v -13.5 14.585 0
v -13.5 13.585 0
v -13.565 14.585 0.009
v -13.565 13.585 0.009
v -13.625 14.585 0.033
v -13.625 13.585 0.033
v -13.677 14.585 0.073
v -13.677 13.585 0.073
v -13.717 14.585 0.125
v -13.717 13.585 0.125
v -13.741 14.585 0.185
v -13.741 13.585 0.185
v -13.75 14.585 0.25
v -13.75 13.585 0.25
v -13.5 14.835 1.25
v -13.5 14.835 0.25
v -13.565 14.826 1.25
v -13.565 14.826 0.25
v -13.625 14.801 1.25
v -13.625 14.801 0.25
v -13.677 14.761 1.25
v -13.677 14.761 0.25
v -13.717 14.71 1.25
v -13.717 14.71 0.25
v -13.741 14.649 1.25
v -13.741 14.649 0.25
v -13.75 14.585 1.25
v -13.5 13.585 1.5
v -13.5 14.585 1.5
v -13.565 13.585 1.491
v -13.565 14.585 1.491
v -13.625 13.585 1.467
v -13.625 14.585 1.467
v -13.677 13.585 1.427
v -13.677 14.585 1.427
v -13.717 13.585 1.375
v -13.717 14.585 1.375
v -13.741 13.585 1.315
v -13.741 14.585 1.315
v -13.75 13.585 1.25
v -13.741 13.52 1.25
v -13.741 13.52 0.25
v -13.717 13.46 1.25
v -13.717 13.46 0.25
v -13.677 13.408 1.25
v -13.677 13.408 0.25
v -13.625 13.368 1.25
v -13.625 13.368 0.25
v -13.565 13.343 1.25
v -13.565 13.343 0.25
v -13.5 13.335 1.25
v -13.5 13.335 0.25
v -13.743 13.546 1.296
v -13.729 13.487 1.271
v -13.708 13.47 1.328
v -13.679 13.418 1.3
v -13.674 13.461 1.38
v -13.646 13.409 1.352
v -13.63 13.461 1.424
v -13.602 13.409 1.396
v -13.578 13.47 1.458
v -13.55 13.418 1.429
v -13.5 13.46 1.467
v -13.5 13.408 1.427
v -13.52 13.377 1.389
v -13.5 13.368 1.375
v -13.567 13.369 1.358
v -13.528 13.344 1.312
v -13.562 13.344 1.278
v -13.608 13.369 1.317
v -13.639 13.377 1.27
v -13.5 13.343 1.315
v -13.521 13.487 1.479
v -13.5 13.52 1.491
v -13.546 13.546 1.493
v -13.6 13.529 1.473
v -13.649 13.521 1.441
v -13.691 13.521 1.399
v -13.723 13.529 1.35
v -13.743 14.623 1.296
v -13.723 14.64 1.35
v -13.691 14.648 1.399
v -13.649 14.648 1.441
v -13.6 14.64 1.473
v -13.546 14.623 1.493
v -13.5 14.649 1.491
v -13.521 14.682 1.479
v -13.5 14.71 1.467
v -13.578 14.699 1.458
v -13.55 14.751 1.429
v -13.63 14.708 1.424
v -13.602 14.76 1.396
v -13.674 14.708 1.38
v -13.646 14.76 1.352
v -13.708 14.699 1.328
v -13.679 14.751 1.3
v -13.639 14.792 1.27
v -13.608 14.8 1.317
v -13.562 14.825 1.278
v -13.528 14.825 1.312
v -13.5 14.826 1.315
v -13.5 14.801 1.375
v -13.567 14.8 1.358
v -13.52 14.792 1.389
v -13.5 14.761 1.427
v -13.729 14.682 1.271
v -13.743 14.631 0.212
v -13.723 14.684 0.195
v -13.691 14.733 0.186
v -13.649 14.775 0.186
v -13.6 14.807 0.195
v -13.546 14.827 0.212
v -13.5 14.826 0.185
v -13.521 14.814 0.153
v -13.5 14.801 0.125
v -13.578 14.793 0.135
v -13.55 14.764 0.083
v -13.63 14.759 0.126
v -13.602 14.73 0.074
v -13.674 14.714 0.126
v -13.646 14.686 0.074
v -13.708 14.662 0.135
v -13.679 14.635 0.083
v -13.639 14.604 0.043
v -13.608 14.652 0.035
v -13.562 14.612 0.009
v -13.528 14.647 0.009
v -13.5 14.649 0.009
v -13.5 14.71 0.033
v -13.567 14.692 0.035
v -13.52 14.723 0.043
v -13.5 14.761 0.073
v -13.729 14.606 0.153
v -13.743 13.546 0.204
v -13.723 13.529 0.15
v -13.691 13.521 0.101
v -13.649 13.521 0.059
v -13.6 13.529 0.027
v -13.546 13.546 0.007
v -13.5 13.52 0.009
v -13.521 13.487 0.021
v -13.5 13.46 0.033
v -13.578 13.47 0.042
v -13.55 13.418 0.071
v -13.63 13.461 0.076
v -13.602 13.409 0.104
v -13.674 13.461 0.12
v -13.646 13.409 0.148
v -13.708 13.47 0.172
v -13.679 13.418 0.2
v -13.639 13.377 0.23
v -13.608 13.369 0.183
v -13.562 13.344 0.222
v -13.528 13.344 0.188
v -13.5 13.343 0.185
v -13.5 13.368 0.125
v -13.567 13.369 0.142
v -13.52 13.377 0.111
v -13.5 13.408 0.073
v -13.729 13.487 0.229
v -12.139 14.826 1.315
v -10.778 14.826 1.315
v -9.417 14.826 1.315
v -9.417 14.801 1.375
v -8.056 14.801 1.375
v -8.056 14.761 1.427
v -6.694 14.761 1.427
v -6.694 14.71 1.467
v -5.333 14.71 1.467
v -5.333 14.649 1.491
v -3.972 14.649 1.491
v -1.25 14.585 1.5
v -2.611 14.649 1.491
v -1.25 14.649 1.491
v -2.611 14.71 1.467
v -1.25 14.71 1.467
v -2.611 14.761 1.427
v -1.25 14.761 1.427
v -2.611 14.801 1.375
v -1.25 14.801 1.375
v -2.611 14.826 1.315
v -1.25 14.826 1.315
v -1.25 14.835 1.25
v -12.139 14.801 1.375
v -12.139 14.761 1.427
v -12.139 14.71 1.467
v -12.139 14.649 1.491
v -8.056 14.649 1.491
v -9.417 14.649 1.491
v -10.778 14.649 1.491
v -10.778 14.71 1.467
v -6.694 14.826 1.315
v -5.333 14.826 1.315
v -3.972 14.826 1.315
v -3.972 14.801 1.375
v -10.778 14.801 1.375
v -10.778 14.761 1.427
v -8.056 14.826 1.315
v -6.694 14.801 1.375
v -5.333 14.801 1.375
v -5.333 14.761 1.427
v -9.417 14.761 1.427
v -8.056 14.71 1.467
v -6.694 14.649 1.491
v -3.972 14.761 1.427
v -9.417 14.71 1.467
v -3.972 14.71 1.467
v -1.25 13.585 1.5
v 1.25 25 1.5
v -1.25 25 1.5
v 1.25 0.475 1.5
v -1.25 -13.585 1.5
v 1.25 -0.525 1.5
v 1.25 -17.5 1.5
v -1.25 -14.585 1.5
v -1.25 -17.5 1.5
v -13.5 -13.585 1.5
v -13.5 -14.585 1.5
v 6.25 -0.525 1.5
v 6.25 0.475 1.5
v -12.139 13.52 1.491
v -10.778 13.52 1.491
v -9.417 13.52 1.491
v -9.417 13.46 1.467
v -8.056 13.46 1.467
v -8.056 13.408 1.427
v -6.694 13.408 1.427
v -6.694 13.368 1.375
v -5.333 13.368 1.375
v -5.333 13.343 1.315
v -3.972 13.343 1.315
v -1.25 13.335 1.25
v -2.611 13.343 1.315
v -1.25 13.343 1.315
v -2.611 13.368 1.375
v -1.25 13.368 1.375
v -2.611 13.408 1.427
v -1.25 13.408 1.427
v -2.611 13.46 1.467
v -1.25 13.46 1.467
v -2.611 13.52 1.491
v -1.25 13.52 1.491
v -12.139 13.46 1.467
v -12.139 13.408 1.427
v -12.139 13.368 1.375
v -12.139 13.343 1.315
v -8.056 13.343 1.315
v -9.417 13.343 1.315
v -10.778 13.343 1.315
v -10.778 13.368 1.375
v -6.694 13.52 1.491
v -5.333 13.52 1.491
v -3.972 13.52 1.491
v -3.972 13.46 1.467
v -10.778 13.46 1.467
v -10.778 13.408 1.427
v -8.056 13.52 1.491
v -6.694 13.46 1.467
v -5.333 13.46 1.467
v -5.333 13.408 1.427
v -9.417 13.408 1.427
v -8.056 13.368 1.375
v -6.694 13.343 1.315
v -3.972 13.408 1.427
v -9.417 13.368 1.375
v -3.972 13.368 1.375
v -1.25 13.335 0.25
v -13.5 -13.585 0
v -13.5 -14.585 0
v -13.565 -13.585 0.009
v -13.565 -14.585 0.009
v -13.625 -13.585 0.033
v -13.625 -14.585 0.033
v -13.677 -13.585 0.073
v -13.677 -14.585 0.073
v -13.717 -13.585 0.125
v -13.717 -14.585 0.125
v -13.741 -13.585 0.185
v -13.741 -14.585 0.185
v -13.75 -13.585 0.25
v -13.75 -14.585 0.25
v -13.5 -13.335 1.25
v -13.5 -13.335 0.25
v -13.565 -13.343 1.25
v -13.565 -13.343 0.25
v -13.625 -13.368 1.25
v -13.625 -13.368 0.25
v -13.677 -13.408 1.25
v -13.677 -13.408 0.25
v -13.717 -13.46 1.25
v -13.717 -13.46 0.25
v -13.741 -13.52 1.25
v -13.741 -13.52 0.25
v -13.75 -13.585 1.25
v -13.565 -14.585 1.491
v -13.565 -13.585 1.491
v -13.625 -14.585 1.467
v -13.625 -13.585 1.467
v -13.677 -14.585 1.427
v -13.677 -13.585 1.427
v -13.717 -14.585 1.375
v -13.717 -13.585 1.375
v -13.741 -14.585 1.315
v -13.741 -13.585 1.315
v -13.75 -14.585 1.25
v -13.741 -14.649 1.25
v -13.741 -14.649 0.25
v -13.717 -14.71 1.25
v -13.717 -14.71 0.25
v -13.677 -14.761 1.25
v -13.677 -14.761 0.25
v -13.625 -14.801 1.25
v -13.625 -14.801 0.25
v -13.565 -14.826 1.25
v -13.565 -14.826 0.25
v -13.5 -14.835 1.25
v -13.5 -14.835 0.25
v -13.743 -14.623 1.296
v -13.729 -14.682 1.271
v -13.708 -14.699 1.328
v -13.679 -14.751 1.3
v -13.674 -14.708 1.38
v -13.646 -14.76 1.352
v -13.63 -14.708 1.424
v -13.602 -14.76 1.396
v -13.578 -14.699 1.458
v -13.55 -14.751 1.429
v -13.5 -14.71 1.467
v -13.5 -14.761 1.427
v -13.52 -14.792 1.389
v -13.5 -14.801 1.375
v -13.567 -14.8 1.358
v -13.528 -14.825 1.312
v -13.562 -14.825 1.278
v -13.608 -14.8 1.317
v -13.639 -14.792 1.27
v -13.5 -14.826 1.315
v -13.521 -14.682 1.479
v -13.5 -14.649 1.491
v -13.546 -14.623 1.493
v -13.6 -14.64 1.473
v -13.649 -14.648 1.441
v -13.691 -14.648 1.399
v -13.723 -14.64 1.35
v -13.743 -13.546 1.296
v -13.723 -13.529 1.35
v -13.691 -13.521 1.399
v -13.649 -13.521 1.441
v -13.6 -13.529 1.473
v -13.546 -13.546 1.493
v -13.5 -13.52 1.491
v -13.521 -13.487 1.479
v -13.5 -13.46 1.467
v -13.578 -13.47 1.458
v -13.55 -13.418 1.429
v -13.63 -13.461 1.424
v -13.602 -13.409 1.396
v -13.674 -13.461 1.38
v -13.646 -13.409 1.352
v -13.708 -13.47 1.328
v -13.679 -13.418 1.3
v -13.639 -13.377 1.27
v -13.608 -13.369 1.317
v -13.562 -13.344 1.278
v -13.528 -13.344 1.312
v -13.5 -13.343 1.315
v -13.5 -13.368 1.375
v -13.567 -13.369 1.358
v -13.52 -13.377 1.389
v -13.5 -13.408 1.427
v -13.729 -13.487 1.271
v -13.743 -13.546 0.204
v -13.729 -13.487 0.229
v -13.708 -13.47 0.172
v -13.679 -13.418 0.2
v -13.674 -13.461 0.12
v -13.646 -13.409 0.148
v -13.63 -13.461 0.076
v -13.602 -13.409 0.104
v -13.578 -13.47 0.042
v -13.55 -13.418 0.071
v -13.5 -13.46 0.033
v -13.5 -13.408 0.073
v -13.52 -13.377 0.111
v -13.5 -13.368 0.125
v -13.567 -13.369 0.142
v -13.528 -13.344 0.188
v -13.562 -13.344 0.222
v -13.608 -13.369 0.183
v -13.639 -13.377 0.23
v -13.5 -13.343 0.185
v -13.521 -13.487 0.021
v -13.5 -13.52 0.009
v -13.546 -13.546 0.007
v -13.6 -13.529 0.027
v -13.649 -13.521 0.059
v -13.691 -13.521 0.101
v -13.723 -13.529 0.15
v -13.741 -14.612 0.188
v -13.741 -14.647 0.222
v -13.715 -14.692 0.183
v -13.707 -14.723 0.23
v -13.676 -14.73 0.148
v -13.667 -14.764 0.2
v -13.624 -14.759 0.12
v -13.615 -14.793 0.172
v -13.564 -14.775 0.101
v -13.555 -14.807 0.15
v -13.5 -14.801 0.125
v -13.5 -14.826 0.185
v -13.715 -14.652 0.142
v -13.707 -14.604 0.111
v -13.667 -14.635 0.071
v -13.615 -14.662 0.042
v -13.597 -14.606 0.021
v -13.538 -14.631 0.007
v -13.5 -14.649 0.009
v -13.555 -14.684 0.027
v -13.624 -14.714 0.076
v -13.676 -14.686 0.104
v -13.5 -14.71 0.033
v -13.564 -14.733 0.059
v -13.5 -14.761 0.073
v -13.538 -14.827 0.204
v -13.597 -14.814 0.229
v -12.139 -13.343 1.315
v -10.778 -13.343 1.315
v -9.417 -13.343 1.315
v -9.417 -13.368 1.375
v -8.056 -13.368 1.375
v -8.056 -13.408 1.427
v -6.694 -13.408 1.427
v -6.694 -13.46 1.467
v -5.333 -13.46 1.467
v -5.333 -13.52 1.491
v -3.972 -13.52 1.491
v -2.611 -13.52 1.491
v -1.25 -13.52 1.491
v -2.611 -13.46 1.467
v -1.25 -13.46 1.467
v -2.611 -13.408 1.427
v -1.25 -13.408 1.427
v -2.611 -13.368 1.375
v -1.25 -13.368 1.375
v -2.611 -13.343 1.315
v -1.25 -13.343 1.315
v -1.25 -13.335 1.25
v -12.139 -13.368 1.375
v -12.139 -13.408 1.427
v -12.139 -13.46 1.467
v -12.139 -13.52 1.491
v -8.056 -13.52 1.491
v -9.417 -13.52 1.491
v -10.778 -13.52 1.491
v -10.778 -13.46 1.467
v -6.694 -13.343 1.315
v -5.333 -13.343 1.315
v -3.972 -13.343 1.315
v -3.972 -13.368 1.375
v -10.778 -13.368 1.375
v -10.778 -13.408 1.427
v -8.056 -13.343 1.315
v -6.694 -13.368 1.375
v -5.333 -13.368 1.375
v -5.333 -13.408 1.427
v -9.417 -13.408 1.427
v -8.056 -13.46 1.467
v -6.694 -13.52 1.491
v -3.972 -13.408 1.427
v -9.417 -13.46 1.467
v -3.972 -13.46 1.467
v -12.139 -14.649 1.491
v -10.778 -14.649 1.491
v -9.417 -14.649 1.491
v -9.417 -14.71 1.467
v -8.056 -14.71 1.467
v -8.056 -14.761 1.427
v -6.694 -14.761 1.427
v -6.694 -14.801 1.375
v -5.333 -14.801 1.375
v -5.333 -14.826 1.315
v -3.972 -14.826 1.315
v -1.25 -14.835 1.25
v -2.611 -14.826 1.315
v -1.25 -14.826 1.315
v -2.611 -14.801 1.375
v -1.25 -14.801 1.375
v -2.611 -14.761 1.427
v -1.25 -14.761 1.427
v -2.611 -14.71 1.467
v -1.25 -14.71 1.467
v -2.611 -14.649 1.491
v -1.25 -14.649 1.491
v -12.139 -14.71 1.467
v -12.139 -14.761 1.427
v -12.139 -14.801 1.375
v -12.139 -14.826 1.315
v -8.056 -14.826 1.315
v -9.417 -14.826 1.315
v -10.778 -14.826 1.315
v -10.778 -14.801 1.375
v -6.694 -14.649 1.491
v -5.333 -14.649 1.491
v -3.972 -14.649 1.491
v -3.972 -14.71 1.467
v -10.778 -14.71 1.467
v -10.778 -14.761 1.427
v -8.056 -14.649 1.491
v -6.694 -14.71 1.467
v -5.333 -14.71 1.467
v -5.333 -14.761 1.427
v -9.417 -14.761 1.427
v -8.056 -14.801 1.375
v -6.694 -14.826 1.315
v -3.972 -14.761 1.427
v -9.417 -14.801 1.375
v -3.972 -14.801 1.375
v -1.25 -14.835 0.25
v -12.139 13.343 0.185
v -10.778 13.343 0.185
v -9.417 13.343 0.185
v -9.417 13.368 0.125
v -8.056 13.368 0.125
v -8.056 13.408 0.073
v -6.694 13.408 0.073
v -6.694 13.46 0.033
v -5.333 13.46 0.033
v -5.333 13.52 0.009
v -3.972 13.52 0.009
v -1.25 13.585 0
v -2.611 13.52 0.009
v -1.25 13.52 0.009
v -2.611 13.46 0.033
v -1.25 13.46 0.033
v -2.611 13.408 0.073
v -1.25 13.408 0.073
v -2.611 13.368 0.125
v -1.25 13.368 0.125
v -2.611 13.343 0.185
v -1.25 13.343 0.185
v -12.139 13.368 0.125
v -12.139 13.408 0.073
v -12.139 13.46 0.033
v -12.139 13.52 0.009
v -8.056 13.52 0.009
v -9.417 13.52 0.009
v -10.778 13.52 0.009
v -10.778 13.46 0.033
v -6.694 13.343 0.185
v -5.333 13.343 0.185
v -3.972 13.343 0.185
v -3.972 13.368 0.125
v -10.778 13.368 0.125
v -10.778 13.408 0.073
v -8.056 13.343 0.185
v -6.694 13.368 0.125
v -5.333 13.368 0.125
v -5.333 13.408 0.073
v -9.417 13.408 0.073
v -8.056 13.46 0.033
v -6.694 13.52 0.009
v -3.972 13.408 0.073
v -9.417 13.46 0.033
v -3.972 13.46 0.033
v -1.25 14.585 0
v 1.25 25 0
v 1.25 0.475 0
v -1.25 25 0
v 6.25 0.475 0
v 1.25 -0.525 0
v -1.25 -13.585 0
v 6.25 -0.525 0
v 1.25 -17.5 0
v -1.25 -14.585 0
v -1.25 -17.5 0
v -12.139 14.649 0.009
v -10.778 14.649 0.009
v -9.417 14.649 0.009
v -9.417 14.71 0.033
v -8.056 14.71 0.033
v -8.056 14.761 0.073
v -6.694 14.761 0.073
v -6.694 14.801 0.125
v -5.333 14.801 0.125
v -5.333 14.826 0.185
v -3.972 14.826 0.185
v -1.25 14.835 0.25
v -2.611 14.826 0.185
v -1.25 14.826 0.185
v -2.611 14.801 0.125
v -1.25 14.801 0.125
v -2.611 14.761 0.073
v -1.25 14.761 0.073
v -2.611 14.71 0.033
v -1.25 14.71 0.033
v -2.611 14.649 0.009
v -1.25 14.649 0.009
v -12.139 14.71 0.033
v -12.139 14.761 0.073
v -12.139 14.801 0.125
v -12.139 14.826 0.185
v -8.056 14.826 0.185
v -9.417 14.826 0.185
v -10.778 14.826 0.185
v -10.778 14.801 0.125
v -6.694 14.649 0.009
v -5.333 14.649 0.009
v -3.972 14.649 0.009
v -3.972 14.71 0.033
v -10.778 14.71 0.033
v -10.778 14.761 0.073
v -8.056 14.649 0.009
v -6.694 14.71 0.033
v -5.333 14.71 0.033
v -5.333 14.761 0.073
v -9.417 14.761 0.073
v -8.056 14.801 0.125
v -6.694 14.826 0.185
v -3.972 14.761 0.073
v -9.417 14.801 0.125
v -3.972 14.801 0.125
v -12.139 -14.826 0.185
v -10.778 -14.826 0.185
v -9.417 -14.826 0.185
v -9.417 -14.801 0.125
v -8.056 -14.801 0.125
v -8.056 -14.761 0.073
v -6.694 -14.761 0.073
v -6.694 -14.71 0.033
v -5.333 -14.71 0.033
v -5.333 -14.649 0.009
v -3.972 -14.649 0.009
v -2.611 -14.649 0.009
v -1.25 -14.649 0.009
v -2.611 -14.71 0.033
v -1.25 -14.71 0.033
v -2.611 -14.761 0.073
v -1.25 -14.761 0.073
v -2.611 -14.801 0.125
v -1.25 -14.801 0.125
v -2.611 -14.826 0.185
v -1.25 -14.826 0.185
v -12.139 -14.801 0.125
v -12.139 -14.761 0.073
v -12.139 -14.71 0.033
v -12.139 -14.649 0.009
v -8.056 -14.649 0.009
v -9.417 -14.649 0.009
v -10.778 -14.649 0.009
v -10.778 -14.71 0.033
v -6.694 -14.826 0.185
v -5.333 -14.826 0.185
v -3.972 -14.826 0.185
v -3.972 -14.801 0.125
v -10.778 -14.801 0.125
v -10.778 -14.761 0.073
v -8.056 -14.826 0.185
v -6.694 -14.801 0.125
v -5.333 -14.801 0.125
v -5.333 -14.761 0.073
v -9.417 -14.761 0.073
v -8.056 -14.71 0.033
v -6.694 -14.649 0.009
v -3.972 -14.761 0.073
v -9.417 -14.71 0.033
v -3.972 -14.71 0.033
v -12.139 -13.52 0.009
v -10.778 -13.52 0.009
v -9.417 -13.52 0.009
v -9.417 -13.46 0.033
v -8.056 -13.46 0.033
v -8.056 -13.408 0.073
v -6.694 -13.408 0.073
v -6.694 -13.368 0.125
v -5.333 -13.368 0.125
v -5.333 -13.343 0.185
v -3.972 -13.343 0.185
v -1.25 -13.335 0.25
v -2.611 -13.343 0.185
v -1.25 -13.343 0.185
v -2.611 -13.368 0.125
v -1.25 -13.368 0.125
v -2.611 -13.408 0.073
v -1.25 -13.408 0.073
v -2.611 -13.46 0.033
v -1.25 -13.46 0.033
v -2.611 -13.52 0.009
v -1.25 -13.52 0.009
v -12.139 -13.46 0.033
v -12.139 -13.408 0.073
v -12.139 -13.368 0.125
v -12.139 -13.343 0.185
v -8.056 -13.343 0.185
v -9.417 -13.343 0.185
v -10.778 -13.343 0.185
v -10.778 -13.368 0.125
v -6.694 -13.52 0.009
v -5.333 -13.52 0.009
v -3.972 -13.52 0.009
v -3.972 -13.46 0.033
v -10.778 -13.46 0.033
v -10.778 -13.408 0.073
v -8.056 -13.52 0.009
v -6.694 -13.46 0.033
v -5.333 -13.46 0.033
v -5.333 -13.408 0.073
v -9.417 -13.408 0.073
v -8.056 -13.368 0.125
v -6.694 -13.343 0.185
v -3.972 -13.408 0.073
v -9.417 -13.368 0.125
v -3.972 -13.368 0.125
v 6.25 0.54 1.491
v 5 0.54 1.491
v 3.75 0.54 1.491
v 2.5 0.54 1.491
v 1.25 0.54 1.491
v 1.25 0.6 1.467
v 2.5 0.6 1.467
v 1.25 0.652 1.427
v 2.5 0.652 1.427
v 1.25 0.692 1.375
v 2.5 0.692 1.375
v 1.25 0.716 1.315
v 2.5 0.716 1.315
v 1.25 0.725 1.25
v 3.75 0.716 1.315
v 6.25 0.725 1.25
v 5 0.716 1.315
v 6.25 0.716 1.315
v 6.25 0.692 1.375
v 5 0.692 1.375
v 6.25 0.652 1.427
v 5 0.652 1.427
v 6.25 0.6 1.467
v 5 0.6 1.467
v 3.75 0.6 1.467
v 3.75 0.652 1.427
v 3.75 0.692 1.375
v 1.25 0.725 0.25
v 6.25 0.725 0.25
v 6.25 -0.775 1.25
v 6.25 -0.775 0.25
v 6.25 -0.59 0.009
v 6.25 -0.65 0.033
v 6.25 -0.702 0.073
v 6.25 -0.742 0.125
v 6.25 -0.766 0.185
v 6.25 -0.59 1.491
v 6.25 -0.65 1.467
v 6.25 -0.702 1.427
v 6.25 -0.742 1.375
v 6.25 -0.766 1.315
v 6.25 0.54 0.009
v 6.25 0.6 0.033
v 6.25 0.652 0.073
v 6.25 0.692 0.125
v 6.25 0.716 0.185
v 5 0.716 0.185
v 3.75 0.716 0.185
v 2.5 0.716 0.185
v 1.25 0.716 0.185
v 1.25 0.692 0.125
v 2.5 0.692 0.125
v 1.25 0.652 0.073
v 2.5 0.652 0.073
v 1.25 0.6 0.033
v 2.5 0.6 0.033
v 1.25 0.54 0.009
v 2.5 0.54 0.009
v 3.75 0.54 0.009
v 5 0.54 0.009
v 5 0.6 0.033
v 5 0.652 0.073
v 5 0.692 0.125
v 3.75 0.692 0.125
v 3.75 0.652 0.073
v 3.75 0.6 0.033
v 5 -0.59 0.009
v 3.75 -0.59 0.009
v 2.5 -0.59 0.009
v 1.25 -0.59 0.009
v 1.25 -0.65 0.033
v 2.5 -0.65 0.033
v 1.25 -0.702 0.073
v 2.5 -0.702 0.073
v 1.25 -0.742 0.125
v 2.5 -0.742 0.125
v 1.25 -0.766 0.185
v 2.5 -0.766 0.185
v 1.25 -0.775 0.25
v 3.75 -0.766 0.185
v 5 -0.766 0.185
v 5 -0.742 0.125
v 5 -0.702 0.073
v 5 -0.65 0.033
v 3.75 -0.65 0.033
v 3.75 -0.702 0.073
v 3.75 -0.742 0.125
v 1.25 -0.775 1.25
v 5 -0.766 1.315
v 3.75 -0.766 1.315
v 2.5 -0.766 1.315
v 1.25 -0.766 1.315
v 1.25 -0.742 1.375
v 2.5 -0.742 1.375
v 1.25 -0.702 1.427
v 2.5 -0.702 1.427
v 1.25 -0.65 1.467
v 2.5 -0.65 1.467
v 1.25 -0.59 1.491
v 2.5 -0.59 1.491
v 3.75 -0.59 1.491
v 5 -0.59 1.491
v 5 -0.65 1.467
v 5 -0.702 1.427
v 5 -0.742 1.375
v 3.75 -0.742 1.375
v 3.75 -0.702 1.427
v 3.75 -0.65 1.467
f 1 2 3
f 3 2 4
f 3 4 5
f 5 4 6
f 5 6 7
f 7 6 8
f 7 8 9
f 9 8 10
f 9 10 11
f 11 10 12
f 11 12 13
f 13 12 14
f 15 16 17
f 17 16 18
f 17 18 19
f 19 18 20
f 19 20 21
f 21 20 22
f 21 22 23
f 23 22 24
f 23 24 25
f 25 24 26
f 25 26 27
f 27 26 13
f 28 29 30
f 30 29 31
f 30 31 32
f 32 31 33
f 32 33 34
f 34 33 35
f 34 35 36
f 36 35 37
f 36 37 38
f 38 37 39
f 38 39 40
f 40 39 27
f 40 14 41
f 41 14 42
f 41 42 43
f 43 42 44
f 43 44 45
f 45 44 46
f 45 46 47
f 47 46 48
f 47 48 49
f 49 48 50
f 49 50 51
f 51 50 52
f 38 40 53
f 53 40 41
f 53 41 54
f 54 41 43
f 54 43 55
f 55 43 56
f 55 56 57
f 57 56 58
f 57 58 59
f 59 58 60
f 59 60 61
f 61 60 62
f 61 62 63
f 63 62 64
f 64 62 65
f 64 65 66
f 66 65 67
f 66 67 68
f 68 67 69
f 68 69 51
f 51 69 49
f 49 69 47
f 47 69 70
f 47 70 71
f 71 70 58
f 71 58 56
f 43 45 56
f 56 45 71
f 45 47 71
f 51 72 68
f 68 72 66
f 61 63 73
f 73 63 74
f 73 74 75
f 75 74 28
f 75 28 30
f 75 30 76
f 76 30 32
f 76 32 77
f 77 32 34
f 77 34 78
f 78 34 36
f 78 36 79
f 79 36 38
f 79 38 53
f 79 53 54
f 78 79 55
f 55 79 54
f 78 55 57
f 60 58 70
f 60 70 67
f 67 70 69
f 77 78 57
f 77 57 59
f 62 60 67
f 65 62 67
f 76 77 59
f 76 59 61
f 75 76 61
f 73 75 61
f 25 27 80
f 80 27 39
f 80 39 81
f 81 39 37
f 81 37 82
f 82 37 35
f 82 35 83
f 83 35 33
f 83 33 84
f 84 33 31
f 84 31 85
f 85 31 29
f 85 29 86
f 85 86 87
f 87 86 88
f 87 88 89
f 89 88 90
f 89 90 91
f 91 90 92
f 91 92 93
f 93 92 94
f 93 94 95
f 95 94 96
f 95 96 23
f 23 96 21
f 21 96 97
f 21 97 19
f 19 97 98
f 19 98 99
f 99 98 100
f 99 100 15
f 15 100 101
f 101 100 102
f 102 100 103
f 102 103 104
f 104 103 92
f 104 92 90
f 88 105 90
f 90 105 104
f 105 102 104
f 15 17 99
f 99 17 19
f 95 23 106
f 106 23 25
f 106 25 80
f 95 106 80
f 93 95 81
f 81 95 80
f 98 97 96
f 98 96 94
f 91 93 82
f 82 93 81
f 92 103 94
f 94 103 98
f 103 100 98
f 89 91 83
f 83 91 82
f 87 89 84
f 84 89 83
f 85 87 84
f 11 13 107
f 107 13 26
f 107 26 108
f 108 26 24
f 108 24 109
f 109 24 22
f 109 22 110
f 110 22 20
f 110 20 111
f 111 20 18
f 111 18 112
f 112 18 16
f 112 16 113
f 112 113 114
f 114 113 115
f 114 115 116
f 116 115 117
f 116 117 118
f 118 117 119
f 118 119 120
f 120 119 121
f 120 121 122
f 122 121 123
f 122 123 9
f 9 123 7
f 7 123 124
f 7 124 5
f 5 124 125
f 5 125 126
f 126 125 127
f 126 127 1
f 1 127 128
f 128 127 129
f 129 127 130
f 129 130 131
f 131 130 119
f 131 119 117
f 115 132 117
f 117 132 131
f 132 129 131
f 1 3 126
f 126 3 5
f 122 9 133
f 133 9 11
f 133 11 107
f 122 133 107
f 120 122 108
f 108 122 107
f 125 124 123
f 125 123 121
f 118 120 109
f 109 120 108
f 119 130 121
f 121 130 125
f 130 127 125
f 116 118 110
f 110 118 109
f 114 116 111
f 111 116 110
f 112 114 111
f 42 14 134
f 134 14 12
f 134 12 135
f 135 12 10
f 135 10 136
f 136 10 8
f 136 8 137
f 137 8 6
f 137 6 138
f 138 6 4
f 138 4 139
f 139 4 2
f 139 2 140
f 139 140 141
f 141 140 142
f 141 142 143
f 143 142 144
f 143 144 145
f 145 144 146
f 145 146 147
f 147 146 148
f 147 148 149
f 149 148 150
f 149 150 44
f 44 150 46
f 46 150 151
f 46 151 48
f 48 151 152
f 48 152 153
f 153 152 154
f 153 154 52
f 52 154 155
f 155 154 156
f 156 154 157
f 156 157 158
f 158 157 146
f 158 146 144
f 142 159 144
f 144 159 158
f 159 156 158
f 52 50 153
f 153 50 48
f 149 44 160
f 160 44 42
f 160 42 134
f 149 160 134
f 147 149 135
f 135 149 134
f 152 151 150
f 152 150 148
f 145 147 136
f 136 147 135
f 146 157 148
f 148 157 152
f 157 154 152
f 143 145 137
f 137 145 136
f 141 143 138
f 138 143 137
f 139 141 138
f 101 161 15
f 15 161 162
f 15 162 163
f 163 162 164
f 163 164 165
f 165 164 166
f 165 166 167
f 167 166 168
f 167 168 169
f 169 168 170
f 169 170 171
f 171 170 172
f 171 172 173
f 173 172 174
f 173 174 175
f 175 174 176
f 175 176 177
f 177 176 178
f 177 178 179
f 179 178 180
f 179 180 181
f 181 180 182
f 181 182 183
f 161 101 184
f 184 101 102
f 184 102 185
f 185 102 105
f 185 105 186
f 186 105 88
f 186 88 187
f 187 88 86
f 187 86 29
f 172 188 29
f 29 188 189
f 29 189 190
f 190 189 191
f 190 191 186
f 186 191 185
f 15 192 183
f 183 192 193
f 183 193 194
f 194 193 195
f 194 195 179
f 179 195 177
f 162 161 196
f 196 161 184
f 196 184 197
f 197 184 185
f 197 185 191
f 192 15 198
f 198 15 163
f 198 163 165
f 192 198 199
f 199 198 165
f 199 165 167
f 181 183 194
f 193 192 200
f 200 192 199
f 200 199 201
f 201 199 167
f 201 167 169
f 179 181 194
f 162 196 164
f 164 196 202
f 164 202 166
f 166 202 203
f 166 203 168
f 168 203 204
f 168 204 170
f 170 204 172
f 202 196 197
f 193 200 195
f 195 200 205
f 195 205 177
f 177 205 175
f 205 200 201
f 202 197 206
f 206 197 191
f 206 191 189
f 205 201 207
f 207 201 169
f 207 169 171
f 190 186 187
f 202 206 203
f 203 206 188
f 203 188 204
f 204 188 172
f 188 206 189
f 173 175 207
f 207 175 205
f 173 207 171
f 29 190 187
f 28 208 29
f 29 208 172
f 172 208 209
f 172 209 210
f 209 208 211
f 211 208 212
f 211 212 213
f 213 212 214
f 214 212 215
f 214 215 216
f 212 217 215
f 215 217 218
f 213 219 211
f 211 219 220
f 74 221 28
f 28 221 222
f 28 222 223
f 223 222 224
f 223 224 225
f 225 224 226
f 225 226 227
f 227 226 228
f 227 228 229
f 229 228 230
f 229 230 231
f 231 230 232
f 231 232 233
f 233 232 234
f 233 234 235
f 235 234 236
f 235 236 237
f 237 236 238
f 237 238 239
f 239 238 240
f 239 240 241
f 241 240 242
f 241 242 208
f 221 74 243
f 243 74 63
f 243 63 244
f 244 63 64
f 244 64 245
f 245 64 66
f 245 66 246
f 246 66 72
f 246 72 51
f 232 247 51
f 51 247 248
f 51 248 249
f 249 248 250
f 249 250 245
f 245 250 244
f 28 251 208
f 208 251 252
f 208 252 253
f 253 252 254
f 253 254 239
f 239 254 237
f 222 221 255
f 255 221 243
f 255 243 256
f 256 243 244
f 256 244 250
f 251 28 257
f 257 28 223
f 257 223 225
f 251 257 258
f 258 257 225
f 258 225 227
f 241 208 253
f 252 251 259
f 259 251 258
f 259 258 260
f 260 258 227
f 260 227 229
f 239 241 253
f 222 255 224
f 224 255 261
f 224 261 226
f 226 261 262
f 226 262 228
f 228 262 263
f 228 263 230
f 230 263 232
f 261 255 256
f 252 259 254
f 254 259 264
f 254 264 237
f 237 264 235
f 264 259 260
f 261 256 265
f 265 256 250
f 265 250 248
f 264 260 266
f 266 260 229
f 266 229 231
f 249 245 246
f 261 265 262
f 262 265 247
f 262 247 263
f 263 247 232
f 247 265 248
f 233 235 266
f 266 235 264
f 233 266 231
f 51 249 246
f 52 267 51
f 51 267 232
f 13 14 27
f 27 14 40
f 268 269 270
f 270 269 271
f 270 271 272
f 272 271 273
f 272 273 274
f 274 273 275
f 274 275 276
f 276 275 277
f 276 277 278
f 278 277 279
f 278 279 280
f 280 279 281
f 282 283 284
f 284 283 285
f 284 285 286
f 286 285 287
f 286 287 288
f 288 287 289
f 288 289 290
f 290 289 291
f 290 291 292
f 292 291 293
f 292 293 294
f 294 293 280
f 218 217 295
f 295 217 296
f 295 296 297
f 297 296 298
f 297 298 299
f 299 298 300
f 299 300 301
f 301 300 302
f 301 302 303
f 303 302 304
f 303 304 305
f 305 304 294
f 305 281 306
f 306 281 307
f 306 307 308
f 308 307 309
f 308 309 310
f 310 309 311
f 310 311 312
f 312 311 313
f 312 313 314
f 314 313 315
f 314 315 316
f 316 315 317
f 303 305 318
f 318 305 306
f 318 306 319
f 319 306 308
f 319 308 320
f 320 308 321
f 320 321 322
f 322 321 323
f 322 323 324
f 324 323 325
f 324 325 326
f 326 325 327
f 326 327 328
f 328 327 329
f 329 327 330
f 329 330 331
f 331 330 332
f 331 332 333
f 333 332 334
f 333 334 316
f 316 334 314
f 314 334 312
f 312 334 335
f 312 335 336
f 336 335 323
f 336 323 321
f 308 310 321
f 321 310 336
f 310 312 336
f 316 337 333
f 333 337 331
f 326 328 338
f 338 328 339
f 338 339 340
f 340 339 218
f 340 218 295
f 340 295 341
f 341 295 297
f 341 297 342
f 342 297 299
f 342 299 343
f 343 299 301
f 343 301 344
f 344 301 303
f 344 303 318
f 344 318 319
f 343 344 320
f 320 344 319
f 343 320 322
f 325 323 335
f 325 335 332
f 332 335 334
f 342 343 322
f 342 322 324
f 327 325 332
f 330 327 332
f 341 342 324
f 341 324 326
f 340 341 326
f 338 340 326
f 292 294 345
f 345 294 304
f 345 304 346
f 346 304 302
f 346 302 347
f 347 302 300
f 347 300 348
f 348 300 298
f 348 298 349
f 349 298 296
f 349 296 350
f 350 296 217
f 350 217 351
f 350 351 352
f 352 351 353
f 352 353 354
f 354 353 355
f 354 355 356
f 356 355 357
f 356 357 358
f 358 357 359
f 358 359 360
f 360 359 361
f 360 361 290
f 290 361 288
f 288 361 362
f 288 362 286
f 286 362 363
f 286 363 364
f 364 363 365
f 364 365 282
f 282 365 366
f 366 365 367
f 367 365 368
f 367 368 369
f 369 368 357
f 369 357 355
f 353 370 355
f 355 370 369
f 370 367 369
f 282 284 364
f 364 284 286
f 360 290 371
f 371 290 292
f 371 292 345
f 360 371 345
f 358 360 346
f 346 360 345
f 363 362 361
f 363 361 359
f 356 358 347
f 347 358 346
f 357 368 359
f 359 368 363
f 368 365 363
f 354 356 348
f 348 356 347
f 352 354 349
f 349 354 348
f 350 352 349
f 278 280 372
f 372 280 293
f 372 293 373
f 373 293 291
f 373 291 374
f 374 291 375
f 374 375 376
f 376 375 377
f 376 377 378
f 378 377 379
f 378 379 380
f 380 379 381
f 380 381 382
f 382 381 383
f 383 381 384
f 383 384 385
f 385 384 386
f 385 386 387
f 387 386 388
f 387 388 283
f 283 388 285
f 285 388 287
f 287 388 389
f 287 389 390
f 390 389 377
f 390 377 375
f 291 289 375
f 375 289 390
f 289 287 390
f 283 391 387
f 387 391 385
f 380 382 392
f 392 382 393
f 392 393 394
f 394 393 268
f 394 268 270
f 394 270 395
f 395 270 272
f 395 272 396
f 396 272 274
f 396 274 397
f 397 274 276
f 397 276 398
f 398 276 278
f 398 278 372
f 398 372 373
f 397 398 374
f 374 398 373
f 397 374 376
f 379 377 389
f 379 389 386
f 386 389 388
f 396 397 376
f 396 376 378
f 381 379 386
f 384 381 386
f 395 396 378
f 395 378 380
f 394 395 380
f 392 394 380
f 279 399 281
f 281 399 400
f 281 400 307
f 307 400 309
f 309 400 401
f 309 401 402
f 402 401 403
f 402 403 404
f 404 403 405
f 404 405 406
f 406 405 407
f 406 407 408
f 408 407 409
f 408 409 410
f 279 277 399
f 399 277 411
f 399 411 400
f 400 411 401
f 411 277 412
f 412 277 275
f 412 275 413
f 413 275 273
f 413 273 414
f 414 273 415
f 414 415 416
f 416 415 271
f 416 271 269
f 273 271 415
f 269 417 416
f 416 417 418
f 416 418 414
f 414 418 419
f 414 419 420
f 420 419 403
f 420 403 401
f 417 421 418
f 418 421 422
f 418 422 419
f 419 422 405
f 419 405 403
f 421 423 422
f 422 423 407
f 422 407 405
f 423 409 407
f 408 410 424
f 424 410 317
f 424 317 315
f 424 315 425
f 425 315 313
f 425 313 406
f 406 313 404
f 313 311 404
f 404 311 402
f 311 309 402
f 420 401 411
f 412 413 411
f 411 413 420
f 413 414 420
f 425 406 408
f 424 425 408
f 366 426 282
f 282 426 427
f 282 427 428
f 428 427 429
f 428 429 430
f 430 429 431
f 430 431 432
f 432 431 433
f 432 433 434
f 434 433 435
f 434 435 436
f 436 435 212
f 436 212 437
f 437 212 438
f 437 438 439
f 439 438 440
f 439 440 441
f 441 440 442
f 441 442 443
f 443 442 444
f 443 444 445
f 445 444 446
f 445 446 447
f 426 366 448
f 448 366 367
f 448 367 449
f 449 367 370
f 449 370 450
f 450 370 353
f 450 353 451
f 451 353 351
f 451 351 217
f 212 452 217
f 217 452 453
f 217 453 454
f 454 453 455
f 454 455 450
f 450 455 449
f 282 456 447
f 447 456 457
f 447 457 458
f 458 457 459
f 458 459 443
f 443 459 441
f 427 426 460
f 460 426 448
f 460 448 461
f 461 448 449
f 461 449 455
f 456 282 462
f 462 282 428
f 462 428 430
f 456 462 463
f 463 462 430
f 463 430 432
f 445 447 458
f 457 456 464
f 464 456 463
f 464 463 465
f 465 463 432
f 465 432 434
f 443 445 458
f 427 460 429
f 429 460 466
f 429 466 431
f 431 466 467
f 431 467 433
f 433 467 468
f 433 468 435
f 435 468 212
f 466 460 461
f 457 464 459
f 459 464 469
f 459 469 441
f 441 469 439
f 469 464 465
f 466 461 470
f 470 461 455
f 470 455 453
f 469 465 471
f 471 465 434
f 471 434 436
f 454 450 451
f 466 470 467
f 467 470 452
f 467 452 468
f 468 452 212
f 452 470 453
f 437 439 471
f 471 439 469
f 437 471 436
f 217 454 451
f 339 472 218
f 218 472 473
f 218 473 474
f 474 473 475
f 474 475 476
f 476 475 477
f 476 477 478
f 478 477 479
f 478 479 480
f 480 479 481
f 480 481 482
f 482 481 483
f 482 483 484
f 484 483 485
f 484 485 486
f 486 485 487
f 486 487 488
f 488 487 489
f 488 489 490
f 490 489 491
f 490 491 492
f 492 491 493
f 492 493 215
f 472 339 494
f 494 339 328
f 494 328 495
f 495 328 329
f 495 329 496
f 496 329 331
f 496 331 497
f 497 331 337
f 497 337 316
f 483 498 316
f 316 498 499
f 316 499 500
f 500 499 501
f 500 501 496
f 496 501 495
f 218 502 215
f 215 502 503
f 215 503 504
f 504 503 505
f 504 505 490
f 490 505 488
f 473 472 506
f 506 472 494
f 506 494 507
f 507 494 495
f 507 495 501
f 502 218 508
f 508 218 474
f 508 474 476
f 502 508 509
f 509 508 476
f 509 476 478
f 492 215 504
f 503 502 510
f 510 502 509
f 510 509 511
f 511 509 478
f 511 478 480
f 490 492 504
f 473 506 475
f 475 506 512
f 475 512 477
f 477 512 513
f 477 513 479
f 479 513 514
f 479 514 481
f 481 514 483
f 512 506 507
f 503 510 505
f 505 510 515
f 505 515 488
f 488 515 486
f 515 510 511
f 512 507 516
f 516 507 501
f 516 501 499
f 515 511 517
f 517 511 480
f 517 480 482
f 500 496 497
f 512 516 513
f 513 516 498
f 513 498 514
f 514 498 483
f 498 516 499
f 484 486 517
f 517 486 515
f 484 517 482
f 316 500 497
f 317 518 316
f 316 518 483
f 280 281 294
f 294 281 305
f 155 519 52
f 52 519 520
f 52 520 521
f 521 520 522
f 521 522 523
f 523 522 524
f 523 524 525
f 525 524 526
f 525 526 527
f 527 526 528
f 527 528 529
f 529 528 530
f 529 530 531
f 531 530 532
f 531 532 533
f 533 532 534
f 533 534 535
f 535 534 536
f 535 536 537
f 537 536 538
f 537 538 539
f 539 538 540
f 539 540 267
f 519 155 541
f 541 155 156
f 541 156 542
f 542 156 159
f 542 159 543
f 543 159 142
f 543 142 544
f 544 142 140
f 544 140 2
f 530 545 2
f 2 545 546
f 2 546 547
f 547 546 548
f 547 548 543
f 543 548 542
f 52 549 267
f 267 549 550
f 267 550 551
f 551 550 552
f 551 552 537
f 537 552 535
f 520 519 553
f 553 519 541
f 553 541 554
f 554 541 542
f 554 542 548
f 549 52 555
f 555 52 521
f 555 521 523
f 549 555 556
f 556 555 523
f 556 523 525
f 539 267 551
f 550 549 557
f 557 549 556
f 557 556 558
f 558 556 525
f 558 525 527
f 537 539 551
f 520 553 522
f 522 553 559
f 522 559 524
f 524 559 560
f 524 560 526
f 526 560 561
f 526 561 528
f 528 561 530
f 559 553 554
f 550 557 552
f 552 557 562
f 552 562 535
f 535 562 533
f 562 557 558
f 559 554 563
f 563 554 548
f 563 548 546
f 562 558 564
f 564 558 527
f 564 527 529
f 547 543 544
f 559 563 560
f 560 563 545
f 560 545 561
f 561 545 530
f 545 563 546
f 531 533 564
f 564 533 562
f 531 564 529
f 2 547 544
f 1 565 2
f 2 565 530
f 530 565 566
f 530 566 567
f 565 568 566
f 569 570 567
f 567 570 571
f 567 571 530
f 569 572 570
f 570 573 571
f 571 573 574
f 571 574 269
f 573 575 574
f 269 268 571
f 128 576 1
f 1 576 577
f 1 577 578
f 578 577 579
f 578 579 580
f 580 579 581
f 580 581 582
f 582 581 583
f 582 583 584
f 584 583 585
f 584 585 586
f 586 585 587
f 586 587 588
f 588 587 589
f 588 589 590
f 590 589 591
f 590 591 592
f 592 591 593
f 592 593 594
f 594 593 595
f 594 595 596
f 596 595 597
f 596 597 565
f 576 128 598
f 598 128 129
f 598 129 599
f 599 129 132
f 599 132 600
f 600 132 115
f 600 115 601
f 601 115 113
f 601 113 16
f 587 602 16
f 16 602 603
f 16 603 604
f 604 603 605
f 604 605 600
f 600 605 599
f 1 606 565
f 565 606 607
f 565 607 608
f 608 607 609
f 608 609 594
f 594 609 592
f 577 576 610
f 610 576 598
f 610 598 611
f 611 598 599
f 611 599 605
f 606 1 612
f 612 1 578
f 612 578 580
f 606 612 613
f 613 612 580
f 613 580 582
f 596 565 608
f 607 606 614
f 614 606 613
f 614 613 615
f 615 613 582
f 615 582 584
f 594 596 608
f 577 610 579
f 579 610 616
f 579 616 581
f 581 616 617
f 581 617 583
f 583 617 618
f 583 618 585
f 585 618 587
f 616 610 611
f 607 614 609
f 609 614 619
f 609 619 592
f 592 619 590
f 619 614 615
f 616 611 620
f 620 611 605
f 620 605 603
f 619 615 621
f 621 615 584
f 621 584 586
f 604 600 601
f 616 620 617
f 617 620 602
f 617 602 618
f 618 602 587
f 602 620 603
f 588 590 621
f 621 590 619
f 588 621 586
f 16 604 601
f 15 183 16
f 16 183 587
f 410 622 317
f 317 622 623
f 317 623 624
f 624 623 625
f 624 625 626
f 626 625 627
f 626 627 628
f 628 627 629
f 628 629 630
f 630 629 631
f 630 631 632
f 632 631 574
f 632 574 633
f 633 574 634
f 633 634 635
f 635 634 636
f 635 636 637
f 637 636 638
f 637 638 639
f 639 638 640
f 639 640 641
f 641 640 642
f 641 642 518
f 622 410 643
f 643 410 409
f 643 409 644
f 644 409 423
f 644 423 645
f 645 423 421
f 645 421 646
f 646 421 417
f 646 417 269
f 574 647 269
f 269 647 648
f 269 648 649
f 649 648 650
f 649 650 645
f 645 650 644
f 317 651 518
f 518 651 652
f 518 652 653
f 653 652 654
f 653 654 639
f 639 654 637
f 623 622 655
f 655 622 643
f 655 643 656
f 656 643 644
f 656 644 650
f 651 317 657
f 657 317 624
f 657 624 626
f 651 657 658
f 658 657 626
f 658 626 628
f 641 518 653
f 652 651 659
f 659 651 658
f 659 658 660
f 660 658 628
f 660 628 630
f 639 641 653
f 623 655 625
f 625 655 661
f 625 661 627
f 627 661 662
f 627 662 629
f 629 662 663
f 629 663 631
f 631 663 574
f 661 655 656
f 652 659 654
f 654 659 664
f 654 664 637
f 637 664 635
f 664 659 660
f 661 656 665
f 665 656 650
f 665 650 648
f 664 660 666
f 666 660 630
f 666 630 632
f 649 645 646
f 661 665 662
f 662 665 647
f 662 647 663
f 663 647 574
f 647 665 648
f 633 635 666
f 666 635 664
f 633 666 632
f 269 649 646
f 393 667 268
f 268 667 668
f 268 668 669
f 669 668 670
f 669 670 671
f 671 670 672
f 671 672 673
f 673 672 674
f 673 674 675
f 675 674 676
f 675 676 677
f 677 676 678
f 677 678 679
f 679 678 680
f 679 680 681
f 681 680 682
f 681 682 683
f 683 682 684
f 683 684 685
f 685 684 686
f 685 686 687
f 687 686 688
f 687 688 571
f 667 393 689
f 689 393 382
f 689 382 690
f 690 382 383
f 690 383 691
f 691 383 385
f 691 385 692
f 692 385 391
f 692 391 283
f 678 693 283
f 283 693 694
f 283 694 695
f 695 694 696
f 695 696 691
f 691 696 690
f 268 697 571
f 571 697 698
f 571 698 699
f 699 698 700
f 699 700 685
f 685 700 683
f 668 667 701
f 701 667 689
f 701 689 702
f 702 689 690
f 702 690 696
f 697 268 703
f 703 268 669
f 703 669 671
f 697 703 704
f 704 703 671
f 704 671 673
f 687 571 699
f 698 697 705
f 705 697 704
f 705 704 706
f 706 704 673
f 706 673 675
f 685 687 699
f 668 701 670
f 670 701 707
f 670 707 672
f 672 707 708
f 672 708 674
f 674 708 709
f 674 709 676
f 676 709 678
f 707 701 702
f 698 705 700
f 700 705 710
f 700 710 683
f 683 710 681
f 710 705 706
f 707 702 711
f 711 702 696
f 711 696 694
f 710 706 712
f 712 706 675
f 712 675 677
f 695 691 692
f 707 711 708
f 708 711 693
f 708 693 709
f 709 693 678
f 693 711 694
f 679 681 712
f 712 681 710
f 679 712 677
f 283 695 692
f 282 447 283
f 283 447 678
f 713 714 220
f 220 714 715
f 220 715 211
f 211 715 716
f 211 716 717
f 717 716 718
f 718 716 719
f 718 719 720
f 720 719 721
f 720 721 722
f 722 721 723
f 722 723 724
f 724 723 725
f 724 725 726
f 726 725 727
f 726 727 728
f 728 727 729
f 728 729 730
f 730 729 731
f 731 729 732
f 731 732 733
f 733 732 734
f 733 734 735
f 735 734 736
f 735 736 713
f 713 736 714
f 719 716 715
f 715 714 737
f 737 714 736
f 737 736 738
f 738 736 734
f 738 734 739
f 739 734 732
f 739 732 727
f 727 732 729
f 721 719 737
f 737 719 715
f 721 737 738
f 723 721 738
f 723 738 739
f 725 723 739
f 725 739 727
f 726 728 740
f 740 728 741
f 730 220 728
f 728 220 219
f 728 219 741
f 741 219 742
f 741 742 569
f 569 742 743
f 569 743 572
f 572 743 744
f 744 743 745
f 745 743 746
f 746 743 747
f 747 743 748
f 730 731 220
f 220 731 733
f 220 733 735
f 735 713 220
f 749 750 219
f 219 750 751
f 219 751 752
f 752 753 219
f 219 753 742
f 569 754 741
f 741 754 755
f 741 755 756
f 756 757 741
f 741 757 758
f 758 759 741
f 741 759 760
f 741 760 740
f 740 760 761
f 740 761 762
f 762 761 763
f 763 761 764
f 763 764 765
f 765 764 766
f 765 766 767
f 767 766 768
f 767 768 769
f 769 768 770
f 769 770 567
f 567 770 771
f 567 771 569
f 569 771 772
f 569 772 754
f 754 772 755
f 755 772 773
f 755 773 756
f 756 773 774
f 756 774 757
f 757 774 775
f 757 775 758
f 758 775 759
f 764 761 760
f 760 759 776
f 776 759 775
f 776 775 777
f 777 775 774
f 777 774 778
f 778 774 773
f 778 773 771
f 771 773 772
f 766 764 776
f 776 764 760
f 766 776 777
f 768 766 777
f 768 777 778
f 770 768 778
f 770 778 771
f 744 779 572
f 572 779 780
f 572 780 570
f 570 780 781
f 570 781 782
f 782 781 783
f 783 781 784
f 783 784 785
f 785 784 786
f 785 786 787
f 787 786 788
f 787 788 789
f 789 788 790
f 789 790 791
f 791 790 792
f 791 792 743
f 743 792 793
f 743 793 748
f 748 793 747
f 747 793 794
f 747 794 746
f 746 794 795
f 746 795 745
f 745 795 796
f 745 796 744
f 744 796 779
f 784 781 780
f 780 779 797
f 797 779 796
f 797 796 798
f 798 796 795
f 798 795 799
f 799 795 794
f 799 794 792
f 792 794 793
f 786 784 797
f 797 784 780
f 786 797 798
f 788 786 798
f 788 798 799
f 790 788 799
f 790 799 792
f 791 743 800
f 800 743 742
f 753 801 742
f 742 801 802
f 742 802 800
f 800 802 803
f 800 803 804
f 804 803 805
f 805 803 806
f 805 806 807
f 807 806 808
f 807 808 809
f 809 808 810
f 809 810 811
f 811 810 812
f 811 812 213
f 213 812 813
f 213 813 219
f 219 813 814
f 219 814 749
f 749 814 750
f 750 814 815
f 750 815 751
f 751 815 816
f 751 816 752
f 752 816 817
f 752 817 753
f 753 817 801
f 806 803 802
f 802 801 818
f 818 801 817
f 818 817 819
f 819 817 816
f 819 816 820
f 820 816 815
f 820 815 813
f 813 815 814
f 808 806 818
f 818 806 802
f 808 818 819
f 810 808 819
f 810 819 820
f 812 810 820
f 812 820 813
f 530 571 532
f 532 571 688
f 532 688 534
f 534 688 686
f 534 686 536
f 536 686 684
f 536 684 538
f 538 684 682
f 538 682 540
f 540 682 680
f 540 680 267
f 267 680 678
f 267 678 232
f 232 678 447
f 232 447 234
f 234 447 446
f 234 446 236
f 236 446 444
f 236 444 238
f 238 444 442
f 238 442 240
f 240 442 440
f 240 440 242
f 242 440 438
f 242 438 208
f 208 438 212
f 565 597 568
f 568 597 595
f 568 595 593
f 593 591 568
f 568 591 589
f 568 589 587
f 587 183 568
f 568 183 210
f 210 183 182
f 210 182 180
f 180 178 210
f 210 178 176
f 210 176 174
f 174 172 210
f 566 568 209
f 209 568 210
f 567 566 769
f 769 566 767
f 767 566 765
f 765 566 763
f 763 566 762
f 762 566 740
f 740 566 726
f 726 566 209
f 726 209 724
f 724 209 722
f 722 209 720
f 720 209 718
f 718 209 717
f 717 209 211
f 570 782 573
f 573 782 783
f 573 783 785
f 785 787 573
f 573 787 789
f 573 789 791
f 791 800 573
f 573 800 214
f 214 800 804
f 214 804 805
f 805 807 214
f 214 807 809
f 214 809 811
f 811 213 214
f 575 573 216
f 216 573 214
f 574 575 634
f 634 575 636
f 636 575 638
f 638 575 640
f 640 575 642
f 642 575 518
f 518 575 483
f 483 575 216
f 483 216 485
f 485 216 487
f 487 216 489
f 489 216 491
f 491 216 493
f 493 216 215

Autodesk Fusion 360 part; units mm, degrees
sketch "Sketch1" plane through (0, 0, 0) normal (0, 0, 1) x (1, 0, 0)
  line L0 (-1.25, 17.5) -> (1.25, 17.5)
  line L1 (1.25, 17.5) -> (1.25, -17.5)
  line L2 (1.25, -17.5) -> (-1.25, -17.5)
  line L3 (-1.25, -17.5) -> (-1.25, 17.5)
  line L4 (-1.25, 17.5) -> (1.25, -17.5) construction
  line L5 (1.25, 17.5) -> (-1.25, -17.5) construction
  line L6 (0, 0) -> (0, -14.0845) construction
  line L7 (-1.25, -14.8345) -> (-13.75, -14.8345)
  line L8 (-13.75, -14.8345) -> (-13.75, -13.3345)
  line L9 (-13.75, -13.3345) -> (-1.25, -13.3345)
  line L10 (1.25, -0.775) -> (6.25, -0.775)
  line L11 (6.25, -0.775) -> (6.25, 0.725)
  line L12 (6.25, 0.725) -> (1.25, 0.725)
  line L13 (0, -14.0845) -> (-12.5, -14.0845) construction
  line L14 (0, 0) -> (-10.5, 0) construction
  line L15 (-13.75, 13.3345) -> (-1.25, 13.3345)
  line L16 (-1.25, 14.8345) -> (-13.75, 14.8345)
  line L17 (-13.75, 13.3345) -> (-13.75, 14.8345)
  line L18 (-1.25, 17.5) -> (-1.25, 25)
  line L19 (1.25, 17.5) -> (1.25, 25)
  line L20 (1.25, 25) -> (-1.25, 25)
  dimension "d1" = 35
  dimension "d2" = 14.0845
  dimension "d3" = 0.75
  dimension "d4" = 1.5
  dimension "d5" = 12.5
  dimension "d6" = 1.5
  dimension "d7" = 0.775
  dimension "d8" = 5
  dimension "d9" = 2.5
  dimension "d10" = 12.5
  dimension "d19" = 7.5
  dimension "d20" = 7.5
extrude "Extrude1" add sketch "Sketch1" along normal blind 1.5
fillet "Fillet1" radius 0.25 4 edges at (3.75, -0.775, 1.5) (3.75, -0.775, 0) (3.75, 0.725, 0) (3.75, 0.725, 1.5)
fillet "Fillet2" radius 0.25 4 edges at (-7.5, -14.8345, 1.5) (-7.5, -13.3345, 1.5) (-7.5, -13.3345, 0) (-7.5, -14.8345, 0)
fillet "Fillet3" radius 0.25 4 edges at (-7.5, 14.8345, 1.5) (-7.5, 13.3345, 1.5) (-7.5, 14.8345, 0) (-7.5, 13.3345, 0)
fillet "Fillet4" radius 0.25 16 edges at (-13.75, -14.8345, 0.75) (-13.75, -14.7613, 0.0732) (-13.75, -14.0845, 0) (-13.75, -13.4077, 0.0732) (-13.75, -13.3345, 0.75) (-13.75, -13.4077, 1.4268) (-13.75, -14.0845, 1.5) (-13.75, -14.7613, 1.4268) (-13.75, 13.3345, 0.75) (-13.75, 13.4077, 0.0732) (-13.75, 14.0845, 0) (-13.75, 14.7613, 0.0732) (-13.75, 14.8345, 0.75) (-13.75, 14.7613, 1.4268) (-13.75, 14.0845, 1.5) (-13.75, 13.4077, 1.4268)
equation "d2 = ( 28.169 / 2 ) * 1 mm"
equation "d3 = ( 1.5 / 2 ) * 1 mm"
equation "d7 = ( 1.55 / 2 ) * 1 mm"
